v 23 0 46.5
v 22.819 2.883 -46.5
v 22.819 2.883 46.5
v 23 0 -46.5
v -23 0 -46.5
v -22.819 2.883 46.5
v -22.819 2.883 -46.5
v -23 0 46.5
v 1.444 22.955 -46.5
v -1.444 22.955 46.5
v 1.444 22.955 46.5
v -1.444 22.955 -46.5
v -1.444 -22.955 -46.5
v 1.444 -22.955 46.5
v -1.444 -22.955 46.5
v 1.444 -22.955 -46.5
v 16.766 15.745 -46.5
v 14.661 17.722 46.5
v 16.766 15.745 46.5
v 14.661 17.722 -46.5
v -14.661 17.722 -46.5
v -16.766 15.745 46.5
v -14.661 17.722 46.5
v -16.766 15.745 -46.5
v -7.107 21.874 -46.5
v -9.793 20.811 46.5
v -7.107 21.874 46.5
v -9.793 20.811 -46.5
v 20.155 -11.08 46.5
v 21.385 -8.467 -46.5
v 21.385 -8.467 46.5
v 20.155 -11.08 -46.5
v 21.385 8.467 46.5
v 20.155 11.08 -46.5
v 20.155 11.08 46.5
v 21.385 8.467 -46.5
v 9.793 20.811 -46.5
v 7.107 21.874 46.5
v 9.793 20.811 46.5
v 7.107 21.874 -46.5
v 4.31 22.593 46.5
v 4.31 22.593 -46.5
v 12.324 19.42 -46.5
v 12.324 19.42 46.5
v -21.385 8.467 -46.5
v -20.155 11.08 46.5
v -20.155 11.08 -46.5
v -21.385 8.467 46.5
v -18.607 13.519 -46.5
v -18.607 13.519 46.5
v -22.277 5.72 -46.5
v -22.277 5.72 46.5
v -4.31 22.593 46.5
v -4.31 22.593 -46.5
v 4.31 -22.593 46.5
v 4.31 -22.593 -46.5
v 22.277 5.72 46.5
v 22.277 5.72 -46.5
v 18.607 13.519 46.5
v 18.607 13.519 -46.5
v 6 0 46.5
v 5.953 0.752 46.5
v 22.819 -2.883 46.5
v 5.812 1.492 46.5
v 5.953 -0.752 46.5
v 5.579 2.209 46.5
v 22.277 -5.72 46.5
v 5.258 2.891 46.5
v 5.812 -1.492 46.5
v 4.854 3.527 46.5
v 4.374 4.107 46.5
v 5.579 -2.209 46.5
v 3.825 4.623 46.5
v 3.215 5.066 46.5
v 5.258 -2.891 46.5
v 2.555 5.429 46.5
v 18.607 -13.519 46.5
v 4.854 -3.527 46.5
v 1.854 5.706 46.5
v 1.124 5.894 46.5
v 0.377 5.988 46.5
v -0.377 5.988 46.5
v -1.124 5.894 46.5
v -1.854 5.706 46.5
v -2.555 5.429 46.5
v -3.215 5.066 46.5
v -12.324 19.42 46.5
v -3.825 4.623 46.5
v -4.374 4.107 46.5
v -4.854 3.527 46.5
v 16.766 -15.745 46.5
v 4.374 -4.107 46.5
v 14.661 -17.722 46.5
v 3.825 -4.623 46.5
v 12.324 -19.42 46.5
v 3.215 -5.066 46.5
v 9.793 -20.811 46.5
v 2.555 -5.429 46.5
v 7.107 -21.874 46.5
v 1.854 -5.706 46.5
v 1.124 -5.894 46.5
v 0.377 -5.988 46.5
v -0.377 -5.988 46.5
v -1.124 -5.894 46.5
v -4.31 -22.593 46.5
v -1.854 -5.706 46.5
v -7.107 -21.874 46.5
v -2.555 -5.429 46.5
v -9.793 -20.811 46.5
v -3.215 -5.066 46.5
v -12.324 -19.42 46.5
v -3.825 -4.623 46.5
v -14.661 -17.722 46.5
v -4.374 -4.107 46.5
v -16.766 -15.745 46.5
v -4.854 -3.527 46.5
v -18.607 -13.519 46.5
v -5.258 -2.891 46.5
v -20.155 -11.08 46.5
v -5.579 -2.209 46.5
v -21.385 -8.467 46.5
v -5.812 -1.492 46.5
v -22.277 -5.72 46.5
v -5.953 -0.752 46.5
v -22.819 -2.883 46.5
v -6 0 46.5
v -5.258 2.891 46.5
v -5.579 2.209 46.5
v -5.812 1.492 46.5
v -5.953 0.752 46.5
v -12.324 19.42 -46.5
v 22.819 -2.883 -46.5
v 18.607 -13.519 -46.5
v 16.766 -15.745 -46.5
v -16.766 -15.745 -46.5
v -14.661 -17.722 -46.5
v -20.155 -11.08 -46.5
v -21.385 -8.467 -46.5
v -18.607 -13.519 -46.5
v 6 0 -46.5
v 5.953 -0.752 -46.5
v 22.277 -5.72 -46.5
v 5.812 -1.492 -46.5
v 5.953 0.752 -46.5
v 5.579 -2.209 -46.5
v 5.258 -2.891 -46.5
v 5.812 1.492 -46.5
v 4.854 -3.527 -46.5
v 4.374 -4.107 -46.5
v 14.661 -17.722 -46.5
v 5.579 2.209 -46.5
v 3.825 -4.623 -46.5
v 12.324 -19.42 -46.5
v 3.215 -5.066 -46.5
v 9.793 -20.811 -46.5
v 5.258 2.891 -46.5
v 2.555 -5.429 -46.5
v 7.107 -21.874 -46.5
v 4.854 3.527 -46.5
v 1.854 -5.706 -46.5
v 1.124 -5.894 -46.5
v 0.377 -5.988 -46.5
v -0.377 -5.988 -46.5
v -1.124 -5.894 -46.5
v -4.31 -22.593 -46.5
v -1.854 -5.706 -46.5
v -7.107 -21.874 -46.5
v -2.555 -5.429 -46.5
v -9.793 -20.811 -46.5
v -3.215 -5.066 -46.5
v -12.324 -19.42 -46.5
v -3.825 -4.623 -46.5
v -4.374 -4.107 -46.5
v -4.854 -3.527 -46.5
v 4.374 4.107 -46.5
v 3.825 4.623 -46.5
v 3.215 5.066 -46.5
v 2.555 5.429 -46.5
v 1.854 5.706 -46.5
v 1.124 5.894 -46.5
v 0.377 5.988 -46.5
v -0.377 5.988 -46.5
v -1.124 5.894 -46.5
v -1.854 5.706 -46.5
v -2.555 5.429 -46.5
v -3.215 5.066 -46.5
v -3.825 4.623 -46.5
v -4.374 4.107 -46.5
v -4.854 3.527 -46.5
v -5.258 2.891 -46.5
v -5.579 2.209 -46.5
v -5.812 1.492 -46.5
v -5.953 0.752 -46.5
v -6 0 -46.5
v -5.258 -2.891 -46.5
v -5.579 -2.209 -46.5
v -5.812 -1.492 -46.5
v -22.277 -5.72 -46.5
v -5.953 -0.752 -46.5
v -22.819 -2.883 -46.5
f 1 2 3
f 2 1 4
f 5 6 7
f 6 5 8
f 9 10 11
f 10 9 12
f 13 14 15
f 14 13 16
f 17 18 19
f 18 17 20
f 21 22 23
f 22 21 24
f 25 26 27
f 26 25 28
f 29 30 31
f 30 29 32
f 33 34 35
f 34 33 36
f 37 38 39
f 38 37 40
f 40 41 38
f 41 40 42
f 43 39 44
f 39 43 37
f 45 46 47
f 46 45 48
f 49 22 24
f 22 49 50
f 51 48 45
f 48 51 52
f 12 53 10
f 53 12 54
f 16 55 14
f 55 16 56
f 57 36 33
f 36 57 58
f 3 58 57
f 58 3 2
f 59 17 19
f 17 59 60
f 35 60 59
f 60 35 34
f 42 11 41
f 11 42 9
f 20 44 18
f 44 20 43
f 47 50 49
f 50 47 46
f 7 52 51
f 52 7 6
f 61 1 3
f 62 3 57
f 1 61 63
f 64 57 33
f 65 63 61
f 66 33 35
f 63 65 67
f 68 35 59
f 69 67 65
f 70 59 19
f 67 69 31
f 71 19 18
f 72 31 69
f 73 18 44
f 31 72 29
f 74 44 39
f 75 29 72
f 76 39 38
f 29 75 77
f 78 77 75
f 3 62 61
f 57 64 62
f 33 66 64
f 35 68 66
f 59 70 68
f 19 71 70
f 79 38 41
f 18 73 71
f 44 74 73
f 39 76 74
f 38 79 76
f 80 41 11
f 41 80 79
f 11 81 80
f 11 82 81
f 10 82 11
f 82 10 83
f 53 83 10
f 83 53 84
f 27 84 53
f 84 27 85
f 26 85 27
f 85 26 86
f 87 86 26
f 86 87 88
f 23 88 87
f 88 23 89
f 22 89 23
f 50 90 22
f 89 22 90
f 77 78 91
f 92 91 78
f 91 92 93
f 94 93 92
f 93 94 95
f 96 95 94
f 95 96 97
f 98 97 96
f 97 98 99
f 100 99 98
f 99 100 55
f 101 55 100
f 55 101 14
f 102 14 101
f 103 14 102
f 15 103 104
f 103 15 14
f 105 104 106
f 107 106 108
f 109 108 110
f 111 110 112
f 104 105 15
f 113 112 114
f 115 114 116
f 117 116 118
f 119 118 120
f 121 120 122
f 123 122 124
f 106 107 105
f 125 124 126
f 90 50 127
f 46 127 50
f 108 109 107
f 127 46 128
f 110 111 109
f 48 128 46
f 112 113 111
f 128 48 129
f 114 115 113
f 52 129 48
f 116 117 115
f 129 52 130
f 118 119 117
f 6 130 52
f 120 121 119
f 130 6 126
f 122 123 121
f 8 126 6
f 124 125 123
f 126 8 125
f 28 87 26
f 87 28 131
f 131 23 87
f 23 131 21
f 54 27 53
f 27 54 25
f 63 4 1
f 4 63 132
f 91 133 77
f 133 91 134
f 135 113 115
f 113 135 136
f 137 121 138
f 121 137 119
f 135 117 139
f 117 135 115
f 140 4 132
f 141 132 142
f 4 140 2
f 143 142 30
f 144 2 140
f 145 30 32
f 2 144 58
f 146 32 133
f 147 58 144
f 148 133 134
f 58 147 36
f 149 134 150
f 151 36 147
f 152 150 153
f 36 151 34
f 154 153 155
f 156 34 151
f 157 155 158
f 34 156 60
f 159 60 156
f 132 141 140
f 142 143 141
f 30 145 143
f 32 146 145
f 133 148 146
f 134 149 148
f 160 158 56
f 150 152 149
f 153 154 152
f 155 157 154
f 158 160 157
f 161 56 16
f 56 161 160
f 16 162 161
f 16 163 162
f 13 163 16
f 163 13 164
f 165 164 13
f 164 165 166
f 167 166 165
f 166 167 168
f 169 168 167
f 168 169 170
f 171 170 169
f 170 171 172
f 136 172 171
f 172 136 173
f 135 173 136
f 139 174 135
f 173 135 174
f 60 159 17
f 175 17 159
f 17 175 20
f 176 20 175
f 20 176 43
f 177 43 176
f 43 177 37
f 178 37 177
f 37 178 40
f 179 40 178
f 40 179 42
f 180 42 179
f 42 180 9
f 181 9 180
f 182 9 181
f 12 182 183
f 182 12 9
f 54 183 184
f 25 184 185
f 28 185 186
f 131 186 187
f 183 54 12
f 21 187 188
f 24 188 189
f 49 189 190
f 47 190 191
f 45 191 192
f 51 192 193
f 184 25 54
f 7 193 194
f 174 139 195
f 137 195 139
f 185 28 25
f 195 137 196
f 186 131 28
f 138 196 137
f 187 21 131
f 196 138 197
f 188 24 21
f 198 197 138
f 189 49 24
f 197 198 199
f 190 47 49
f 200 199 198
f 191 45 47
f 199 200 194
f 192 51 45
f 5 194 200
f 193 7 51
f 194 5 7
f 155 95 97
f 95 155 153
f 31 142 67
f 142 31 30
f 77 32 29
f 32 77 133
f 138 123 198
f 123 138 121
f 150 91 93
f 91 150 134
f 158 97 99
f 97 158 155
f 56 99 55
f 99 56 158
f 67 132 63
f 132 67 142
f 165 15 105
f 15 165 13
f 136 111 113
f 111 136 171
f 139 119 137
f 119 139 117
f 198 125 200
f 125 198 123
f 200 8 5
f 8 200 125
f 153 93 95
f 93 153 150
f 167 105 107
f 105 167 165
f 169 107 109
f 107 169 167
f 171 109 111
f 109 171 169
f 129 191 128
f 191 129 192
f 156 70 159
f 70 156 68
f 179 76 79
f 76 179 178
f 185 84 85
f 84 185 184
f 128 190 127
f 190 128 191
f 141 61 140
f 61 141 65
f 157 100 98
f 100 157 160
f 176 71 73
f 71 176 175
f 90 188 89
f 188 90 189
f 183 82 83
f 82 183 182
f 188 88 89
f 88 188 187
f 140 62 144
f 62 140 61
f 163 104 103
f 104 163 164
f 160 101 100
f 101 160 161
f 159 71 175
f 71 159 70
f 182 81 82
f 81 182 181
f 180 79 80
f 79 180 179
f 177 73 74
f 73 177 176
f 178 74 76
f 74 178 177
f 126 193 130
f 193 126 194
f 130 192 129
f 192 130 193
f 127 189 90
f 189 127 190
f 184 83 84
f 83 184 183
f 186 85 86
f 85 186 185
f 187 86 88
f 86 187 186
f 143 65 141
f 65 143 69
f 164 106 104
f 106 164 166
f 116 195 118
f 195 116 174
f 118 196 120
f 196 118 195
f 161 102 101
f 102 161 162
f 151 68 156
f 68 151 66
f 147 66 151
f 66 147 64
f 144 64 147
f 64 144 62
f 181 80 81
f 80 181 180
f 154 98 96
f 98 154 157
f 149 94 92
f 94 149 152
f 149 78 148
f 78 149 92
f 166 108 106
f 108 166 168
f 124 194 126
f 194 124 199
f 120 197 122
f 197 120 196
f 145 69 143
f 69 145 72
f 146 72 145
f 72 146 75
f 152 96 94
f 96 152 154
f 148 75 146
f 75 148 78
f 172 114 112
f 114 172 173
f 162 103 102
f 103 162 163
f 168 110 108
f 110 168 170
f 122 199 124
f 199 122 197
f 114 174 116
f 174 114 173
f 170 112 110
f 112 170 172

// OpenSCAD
$fn = 50;


difference() {
	union() {
		translate(v = [0, 0, -46.5000000000]) {
			cylinder(h = 93, r = 23.0000000000);
		}
	}
	union() {
		translate(v = [0, 0, -100.0000000000]) {
			cylinder(h = 200, r = 6);
		}
	}
}
